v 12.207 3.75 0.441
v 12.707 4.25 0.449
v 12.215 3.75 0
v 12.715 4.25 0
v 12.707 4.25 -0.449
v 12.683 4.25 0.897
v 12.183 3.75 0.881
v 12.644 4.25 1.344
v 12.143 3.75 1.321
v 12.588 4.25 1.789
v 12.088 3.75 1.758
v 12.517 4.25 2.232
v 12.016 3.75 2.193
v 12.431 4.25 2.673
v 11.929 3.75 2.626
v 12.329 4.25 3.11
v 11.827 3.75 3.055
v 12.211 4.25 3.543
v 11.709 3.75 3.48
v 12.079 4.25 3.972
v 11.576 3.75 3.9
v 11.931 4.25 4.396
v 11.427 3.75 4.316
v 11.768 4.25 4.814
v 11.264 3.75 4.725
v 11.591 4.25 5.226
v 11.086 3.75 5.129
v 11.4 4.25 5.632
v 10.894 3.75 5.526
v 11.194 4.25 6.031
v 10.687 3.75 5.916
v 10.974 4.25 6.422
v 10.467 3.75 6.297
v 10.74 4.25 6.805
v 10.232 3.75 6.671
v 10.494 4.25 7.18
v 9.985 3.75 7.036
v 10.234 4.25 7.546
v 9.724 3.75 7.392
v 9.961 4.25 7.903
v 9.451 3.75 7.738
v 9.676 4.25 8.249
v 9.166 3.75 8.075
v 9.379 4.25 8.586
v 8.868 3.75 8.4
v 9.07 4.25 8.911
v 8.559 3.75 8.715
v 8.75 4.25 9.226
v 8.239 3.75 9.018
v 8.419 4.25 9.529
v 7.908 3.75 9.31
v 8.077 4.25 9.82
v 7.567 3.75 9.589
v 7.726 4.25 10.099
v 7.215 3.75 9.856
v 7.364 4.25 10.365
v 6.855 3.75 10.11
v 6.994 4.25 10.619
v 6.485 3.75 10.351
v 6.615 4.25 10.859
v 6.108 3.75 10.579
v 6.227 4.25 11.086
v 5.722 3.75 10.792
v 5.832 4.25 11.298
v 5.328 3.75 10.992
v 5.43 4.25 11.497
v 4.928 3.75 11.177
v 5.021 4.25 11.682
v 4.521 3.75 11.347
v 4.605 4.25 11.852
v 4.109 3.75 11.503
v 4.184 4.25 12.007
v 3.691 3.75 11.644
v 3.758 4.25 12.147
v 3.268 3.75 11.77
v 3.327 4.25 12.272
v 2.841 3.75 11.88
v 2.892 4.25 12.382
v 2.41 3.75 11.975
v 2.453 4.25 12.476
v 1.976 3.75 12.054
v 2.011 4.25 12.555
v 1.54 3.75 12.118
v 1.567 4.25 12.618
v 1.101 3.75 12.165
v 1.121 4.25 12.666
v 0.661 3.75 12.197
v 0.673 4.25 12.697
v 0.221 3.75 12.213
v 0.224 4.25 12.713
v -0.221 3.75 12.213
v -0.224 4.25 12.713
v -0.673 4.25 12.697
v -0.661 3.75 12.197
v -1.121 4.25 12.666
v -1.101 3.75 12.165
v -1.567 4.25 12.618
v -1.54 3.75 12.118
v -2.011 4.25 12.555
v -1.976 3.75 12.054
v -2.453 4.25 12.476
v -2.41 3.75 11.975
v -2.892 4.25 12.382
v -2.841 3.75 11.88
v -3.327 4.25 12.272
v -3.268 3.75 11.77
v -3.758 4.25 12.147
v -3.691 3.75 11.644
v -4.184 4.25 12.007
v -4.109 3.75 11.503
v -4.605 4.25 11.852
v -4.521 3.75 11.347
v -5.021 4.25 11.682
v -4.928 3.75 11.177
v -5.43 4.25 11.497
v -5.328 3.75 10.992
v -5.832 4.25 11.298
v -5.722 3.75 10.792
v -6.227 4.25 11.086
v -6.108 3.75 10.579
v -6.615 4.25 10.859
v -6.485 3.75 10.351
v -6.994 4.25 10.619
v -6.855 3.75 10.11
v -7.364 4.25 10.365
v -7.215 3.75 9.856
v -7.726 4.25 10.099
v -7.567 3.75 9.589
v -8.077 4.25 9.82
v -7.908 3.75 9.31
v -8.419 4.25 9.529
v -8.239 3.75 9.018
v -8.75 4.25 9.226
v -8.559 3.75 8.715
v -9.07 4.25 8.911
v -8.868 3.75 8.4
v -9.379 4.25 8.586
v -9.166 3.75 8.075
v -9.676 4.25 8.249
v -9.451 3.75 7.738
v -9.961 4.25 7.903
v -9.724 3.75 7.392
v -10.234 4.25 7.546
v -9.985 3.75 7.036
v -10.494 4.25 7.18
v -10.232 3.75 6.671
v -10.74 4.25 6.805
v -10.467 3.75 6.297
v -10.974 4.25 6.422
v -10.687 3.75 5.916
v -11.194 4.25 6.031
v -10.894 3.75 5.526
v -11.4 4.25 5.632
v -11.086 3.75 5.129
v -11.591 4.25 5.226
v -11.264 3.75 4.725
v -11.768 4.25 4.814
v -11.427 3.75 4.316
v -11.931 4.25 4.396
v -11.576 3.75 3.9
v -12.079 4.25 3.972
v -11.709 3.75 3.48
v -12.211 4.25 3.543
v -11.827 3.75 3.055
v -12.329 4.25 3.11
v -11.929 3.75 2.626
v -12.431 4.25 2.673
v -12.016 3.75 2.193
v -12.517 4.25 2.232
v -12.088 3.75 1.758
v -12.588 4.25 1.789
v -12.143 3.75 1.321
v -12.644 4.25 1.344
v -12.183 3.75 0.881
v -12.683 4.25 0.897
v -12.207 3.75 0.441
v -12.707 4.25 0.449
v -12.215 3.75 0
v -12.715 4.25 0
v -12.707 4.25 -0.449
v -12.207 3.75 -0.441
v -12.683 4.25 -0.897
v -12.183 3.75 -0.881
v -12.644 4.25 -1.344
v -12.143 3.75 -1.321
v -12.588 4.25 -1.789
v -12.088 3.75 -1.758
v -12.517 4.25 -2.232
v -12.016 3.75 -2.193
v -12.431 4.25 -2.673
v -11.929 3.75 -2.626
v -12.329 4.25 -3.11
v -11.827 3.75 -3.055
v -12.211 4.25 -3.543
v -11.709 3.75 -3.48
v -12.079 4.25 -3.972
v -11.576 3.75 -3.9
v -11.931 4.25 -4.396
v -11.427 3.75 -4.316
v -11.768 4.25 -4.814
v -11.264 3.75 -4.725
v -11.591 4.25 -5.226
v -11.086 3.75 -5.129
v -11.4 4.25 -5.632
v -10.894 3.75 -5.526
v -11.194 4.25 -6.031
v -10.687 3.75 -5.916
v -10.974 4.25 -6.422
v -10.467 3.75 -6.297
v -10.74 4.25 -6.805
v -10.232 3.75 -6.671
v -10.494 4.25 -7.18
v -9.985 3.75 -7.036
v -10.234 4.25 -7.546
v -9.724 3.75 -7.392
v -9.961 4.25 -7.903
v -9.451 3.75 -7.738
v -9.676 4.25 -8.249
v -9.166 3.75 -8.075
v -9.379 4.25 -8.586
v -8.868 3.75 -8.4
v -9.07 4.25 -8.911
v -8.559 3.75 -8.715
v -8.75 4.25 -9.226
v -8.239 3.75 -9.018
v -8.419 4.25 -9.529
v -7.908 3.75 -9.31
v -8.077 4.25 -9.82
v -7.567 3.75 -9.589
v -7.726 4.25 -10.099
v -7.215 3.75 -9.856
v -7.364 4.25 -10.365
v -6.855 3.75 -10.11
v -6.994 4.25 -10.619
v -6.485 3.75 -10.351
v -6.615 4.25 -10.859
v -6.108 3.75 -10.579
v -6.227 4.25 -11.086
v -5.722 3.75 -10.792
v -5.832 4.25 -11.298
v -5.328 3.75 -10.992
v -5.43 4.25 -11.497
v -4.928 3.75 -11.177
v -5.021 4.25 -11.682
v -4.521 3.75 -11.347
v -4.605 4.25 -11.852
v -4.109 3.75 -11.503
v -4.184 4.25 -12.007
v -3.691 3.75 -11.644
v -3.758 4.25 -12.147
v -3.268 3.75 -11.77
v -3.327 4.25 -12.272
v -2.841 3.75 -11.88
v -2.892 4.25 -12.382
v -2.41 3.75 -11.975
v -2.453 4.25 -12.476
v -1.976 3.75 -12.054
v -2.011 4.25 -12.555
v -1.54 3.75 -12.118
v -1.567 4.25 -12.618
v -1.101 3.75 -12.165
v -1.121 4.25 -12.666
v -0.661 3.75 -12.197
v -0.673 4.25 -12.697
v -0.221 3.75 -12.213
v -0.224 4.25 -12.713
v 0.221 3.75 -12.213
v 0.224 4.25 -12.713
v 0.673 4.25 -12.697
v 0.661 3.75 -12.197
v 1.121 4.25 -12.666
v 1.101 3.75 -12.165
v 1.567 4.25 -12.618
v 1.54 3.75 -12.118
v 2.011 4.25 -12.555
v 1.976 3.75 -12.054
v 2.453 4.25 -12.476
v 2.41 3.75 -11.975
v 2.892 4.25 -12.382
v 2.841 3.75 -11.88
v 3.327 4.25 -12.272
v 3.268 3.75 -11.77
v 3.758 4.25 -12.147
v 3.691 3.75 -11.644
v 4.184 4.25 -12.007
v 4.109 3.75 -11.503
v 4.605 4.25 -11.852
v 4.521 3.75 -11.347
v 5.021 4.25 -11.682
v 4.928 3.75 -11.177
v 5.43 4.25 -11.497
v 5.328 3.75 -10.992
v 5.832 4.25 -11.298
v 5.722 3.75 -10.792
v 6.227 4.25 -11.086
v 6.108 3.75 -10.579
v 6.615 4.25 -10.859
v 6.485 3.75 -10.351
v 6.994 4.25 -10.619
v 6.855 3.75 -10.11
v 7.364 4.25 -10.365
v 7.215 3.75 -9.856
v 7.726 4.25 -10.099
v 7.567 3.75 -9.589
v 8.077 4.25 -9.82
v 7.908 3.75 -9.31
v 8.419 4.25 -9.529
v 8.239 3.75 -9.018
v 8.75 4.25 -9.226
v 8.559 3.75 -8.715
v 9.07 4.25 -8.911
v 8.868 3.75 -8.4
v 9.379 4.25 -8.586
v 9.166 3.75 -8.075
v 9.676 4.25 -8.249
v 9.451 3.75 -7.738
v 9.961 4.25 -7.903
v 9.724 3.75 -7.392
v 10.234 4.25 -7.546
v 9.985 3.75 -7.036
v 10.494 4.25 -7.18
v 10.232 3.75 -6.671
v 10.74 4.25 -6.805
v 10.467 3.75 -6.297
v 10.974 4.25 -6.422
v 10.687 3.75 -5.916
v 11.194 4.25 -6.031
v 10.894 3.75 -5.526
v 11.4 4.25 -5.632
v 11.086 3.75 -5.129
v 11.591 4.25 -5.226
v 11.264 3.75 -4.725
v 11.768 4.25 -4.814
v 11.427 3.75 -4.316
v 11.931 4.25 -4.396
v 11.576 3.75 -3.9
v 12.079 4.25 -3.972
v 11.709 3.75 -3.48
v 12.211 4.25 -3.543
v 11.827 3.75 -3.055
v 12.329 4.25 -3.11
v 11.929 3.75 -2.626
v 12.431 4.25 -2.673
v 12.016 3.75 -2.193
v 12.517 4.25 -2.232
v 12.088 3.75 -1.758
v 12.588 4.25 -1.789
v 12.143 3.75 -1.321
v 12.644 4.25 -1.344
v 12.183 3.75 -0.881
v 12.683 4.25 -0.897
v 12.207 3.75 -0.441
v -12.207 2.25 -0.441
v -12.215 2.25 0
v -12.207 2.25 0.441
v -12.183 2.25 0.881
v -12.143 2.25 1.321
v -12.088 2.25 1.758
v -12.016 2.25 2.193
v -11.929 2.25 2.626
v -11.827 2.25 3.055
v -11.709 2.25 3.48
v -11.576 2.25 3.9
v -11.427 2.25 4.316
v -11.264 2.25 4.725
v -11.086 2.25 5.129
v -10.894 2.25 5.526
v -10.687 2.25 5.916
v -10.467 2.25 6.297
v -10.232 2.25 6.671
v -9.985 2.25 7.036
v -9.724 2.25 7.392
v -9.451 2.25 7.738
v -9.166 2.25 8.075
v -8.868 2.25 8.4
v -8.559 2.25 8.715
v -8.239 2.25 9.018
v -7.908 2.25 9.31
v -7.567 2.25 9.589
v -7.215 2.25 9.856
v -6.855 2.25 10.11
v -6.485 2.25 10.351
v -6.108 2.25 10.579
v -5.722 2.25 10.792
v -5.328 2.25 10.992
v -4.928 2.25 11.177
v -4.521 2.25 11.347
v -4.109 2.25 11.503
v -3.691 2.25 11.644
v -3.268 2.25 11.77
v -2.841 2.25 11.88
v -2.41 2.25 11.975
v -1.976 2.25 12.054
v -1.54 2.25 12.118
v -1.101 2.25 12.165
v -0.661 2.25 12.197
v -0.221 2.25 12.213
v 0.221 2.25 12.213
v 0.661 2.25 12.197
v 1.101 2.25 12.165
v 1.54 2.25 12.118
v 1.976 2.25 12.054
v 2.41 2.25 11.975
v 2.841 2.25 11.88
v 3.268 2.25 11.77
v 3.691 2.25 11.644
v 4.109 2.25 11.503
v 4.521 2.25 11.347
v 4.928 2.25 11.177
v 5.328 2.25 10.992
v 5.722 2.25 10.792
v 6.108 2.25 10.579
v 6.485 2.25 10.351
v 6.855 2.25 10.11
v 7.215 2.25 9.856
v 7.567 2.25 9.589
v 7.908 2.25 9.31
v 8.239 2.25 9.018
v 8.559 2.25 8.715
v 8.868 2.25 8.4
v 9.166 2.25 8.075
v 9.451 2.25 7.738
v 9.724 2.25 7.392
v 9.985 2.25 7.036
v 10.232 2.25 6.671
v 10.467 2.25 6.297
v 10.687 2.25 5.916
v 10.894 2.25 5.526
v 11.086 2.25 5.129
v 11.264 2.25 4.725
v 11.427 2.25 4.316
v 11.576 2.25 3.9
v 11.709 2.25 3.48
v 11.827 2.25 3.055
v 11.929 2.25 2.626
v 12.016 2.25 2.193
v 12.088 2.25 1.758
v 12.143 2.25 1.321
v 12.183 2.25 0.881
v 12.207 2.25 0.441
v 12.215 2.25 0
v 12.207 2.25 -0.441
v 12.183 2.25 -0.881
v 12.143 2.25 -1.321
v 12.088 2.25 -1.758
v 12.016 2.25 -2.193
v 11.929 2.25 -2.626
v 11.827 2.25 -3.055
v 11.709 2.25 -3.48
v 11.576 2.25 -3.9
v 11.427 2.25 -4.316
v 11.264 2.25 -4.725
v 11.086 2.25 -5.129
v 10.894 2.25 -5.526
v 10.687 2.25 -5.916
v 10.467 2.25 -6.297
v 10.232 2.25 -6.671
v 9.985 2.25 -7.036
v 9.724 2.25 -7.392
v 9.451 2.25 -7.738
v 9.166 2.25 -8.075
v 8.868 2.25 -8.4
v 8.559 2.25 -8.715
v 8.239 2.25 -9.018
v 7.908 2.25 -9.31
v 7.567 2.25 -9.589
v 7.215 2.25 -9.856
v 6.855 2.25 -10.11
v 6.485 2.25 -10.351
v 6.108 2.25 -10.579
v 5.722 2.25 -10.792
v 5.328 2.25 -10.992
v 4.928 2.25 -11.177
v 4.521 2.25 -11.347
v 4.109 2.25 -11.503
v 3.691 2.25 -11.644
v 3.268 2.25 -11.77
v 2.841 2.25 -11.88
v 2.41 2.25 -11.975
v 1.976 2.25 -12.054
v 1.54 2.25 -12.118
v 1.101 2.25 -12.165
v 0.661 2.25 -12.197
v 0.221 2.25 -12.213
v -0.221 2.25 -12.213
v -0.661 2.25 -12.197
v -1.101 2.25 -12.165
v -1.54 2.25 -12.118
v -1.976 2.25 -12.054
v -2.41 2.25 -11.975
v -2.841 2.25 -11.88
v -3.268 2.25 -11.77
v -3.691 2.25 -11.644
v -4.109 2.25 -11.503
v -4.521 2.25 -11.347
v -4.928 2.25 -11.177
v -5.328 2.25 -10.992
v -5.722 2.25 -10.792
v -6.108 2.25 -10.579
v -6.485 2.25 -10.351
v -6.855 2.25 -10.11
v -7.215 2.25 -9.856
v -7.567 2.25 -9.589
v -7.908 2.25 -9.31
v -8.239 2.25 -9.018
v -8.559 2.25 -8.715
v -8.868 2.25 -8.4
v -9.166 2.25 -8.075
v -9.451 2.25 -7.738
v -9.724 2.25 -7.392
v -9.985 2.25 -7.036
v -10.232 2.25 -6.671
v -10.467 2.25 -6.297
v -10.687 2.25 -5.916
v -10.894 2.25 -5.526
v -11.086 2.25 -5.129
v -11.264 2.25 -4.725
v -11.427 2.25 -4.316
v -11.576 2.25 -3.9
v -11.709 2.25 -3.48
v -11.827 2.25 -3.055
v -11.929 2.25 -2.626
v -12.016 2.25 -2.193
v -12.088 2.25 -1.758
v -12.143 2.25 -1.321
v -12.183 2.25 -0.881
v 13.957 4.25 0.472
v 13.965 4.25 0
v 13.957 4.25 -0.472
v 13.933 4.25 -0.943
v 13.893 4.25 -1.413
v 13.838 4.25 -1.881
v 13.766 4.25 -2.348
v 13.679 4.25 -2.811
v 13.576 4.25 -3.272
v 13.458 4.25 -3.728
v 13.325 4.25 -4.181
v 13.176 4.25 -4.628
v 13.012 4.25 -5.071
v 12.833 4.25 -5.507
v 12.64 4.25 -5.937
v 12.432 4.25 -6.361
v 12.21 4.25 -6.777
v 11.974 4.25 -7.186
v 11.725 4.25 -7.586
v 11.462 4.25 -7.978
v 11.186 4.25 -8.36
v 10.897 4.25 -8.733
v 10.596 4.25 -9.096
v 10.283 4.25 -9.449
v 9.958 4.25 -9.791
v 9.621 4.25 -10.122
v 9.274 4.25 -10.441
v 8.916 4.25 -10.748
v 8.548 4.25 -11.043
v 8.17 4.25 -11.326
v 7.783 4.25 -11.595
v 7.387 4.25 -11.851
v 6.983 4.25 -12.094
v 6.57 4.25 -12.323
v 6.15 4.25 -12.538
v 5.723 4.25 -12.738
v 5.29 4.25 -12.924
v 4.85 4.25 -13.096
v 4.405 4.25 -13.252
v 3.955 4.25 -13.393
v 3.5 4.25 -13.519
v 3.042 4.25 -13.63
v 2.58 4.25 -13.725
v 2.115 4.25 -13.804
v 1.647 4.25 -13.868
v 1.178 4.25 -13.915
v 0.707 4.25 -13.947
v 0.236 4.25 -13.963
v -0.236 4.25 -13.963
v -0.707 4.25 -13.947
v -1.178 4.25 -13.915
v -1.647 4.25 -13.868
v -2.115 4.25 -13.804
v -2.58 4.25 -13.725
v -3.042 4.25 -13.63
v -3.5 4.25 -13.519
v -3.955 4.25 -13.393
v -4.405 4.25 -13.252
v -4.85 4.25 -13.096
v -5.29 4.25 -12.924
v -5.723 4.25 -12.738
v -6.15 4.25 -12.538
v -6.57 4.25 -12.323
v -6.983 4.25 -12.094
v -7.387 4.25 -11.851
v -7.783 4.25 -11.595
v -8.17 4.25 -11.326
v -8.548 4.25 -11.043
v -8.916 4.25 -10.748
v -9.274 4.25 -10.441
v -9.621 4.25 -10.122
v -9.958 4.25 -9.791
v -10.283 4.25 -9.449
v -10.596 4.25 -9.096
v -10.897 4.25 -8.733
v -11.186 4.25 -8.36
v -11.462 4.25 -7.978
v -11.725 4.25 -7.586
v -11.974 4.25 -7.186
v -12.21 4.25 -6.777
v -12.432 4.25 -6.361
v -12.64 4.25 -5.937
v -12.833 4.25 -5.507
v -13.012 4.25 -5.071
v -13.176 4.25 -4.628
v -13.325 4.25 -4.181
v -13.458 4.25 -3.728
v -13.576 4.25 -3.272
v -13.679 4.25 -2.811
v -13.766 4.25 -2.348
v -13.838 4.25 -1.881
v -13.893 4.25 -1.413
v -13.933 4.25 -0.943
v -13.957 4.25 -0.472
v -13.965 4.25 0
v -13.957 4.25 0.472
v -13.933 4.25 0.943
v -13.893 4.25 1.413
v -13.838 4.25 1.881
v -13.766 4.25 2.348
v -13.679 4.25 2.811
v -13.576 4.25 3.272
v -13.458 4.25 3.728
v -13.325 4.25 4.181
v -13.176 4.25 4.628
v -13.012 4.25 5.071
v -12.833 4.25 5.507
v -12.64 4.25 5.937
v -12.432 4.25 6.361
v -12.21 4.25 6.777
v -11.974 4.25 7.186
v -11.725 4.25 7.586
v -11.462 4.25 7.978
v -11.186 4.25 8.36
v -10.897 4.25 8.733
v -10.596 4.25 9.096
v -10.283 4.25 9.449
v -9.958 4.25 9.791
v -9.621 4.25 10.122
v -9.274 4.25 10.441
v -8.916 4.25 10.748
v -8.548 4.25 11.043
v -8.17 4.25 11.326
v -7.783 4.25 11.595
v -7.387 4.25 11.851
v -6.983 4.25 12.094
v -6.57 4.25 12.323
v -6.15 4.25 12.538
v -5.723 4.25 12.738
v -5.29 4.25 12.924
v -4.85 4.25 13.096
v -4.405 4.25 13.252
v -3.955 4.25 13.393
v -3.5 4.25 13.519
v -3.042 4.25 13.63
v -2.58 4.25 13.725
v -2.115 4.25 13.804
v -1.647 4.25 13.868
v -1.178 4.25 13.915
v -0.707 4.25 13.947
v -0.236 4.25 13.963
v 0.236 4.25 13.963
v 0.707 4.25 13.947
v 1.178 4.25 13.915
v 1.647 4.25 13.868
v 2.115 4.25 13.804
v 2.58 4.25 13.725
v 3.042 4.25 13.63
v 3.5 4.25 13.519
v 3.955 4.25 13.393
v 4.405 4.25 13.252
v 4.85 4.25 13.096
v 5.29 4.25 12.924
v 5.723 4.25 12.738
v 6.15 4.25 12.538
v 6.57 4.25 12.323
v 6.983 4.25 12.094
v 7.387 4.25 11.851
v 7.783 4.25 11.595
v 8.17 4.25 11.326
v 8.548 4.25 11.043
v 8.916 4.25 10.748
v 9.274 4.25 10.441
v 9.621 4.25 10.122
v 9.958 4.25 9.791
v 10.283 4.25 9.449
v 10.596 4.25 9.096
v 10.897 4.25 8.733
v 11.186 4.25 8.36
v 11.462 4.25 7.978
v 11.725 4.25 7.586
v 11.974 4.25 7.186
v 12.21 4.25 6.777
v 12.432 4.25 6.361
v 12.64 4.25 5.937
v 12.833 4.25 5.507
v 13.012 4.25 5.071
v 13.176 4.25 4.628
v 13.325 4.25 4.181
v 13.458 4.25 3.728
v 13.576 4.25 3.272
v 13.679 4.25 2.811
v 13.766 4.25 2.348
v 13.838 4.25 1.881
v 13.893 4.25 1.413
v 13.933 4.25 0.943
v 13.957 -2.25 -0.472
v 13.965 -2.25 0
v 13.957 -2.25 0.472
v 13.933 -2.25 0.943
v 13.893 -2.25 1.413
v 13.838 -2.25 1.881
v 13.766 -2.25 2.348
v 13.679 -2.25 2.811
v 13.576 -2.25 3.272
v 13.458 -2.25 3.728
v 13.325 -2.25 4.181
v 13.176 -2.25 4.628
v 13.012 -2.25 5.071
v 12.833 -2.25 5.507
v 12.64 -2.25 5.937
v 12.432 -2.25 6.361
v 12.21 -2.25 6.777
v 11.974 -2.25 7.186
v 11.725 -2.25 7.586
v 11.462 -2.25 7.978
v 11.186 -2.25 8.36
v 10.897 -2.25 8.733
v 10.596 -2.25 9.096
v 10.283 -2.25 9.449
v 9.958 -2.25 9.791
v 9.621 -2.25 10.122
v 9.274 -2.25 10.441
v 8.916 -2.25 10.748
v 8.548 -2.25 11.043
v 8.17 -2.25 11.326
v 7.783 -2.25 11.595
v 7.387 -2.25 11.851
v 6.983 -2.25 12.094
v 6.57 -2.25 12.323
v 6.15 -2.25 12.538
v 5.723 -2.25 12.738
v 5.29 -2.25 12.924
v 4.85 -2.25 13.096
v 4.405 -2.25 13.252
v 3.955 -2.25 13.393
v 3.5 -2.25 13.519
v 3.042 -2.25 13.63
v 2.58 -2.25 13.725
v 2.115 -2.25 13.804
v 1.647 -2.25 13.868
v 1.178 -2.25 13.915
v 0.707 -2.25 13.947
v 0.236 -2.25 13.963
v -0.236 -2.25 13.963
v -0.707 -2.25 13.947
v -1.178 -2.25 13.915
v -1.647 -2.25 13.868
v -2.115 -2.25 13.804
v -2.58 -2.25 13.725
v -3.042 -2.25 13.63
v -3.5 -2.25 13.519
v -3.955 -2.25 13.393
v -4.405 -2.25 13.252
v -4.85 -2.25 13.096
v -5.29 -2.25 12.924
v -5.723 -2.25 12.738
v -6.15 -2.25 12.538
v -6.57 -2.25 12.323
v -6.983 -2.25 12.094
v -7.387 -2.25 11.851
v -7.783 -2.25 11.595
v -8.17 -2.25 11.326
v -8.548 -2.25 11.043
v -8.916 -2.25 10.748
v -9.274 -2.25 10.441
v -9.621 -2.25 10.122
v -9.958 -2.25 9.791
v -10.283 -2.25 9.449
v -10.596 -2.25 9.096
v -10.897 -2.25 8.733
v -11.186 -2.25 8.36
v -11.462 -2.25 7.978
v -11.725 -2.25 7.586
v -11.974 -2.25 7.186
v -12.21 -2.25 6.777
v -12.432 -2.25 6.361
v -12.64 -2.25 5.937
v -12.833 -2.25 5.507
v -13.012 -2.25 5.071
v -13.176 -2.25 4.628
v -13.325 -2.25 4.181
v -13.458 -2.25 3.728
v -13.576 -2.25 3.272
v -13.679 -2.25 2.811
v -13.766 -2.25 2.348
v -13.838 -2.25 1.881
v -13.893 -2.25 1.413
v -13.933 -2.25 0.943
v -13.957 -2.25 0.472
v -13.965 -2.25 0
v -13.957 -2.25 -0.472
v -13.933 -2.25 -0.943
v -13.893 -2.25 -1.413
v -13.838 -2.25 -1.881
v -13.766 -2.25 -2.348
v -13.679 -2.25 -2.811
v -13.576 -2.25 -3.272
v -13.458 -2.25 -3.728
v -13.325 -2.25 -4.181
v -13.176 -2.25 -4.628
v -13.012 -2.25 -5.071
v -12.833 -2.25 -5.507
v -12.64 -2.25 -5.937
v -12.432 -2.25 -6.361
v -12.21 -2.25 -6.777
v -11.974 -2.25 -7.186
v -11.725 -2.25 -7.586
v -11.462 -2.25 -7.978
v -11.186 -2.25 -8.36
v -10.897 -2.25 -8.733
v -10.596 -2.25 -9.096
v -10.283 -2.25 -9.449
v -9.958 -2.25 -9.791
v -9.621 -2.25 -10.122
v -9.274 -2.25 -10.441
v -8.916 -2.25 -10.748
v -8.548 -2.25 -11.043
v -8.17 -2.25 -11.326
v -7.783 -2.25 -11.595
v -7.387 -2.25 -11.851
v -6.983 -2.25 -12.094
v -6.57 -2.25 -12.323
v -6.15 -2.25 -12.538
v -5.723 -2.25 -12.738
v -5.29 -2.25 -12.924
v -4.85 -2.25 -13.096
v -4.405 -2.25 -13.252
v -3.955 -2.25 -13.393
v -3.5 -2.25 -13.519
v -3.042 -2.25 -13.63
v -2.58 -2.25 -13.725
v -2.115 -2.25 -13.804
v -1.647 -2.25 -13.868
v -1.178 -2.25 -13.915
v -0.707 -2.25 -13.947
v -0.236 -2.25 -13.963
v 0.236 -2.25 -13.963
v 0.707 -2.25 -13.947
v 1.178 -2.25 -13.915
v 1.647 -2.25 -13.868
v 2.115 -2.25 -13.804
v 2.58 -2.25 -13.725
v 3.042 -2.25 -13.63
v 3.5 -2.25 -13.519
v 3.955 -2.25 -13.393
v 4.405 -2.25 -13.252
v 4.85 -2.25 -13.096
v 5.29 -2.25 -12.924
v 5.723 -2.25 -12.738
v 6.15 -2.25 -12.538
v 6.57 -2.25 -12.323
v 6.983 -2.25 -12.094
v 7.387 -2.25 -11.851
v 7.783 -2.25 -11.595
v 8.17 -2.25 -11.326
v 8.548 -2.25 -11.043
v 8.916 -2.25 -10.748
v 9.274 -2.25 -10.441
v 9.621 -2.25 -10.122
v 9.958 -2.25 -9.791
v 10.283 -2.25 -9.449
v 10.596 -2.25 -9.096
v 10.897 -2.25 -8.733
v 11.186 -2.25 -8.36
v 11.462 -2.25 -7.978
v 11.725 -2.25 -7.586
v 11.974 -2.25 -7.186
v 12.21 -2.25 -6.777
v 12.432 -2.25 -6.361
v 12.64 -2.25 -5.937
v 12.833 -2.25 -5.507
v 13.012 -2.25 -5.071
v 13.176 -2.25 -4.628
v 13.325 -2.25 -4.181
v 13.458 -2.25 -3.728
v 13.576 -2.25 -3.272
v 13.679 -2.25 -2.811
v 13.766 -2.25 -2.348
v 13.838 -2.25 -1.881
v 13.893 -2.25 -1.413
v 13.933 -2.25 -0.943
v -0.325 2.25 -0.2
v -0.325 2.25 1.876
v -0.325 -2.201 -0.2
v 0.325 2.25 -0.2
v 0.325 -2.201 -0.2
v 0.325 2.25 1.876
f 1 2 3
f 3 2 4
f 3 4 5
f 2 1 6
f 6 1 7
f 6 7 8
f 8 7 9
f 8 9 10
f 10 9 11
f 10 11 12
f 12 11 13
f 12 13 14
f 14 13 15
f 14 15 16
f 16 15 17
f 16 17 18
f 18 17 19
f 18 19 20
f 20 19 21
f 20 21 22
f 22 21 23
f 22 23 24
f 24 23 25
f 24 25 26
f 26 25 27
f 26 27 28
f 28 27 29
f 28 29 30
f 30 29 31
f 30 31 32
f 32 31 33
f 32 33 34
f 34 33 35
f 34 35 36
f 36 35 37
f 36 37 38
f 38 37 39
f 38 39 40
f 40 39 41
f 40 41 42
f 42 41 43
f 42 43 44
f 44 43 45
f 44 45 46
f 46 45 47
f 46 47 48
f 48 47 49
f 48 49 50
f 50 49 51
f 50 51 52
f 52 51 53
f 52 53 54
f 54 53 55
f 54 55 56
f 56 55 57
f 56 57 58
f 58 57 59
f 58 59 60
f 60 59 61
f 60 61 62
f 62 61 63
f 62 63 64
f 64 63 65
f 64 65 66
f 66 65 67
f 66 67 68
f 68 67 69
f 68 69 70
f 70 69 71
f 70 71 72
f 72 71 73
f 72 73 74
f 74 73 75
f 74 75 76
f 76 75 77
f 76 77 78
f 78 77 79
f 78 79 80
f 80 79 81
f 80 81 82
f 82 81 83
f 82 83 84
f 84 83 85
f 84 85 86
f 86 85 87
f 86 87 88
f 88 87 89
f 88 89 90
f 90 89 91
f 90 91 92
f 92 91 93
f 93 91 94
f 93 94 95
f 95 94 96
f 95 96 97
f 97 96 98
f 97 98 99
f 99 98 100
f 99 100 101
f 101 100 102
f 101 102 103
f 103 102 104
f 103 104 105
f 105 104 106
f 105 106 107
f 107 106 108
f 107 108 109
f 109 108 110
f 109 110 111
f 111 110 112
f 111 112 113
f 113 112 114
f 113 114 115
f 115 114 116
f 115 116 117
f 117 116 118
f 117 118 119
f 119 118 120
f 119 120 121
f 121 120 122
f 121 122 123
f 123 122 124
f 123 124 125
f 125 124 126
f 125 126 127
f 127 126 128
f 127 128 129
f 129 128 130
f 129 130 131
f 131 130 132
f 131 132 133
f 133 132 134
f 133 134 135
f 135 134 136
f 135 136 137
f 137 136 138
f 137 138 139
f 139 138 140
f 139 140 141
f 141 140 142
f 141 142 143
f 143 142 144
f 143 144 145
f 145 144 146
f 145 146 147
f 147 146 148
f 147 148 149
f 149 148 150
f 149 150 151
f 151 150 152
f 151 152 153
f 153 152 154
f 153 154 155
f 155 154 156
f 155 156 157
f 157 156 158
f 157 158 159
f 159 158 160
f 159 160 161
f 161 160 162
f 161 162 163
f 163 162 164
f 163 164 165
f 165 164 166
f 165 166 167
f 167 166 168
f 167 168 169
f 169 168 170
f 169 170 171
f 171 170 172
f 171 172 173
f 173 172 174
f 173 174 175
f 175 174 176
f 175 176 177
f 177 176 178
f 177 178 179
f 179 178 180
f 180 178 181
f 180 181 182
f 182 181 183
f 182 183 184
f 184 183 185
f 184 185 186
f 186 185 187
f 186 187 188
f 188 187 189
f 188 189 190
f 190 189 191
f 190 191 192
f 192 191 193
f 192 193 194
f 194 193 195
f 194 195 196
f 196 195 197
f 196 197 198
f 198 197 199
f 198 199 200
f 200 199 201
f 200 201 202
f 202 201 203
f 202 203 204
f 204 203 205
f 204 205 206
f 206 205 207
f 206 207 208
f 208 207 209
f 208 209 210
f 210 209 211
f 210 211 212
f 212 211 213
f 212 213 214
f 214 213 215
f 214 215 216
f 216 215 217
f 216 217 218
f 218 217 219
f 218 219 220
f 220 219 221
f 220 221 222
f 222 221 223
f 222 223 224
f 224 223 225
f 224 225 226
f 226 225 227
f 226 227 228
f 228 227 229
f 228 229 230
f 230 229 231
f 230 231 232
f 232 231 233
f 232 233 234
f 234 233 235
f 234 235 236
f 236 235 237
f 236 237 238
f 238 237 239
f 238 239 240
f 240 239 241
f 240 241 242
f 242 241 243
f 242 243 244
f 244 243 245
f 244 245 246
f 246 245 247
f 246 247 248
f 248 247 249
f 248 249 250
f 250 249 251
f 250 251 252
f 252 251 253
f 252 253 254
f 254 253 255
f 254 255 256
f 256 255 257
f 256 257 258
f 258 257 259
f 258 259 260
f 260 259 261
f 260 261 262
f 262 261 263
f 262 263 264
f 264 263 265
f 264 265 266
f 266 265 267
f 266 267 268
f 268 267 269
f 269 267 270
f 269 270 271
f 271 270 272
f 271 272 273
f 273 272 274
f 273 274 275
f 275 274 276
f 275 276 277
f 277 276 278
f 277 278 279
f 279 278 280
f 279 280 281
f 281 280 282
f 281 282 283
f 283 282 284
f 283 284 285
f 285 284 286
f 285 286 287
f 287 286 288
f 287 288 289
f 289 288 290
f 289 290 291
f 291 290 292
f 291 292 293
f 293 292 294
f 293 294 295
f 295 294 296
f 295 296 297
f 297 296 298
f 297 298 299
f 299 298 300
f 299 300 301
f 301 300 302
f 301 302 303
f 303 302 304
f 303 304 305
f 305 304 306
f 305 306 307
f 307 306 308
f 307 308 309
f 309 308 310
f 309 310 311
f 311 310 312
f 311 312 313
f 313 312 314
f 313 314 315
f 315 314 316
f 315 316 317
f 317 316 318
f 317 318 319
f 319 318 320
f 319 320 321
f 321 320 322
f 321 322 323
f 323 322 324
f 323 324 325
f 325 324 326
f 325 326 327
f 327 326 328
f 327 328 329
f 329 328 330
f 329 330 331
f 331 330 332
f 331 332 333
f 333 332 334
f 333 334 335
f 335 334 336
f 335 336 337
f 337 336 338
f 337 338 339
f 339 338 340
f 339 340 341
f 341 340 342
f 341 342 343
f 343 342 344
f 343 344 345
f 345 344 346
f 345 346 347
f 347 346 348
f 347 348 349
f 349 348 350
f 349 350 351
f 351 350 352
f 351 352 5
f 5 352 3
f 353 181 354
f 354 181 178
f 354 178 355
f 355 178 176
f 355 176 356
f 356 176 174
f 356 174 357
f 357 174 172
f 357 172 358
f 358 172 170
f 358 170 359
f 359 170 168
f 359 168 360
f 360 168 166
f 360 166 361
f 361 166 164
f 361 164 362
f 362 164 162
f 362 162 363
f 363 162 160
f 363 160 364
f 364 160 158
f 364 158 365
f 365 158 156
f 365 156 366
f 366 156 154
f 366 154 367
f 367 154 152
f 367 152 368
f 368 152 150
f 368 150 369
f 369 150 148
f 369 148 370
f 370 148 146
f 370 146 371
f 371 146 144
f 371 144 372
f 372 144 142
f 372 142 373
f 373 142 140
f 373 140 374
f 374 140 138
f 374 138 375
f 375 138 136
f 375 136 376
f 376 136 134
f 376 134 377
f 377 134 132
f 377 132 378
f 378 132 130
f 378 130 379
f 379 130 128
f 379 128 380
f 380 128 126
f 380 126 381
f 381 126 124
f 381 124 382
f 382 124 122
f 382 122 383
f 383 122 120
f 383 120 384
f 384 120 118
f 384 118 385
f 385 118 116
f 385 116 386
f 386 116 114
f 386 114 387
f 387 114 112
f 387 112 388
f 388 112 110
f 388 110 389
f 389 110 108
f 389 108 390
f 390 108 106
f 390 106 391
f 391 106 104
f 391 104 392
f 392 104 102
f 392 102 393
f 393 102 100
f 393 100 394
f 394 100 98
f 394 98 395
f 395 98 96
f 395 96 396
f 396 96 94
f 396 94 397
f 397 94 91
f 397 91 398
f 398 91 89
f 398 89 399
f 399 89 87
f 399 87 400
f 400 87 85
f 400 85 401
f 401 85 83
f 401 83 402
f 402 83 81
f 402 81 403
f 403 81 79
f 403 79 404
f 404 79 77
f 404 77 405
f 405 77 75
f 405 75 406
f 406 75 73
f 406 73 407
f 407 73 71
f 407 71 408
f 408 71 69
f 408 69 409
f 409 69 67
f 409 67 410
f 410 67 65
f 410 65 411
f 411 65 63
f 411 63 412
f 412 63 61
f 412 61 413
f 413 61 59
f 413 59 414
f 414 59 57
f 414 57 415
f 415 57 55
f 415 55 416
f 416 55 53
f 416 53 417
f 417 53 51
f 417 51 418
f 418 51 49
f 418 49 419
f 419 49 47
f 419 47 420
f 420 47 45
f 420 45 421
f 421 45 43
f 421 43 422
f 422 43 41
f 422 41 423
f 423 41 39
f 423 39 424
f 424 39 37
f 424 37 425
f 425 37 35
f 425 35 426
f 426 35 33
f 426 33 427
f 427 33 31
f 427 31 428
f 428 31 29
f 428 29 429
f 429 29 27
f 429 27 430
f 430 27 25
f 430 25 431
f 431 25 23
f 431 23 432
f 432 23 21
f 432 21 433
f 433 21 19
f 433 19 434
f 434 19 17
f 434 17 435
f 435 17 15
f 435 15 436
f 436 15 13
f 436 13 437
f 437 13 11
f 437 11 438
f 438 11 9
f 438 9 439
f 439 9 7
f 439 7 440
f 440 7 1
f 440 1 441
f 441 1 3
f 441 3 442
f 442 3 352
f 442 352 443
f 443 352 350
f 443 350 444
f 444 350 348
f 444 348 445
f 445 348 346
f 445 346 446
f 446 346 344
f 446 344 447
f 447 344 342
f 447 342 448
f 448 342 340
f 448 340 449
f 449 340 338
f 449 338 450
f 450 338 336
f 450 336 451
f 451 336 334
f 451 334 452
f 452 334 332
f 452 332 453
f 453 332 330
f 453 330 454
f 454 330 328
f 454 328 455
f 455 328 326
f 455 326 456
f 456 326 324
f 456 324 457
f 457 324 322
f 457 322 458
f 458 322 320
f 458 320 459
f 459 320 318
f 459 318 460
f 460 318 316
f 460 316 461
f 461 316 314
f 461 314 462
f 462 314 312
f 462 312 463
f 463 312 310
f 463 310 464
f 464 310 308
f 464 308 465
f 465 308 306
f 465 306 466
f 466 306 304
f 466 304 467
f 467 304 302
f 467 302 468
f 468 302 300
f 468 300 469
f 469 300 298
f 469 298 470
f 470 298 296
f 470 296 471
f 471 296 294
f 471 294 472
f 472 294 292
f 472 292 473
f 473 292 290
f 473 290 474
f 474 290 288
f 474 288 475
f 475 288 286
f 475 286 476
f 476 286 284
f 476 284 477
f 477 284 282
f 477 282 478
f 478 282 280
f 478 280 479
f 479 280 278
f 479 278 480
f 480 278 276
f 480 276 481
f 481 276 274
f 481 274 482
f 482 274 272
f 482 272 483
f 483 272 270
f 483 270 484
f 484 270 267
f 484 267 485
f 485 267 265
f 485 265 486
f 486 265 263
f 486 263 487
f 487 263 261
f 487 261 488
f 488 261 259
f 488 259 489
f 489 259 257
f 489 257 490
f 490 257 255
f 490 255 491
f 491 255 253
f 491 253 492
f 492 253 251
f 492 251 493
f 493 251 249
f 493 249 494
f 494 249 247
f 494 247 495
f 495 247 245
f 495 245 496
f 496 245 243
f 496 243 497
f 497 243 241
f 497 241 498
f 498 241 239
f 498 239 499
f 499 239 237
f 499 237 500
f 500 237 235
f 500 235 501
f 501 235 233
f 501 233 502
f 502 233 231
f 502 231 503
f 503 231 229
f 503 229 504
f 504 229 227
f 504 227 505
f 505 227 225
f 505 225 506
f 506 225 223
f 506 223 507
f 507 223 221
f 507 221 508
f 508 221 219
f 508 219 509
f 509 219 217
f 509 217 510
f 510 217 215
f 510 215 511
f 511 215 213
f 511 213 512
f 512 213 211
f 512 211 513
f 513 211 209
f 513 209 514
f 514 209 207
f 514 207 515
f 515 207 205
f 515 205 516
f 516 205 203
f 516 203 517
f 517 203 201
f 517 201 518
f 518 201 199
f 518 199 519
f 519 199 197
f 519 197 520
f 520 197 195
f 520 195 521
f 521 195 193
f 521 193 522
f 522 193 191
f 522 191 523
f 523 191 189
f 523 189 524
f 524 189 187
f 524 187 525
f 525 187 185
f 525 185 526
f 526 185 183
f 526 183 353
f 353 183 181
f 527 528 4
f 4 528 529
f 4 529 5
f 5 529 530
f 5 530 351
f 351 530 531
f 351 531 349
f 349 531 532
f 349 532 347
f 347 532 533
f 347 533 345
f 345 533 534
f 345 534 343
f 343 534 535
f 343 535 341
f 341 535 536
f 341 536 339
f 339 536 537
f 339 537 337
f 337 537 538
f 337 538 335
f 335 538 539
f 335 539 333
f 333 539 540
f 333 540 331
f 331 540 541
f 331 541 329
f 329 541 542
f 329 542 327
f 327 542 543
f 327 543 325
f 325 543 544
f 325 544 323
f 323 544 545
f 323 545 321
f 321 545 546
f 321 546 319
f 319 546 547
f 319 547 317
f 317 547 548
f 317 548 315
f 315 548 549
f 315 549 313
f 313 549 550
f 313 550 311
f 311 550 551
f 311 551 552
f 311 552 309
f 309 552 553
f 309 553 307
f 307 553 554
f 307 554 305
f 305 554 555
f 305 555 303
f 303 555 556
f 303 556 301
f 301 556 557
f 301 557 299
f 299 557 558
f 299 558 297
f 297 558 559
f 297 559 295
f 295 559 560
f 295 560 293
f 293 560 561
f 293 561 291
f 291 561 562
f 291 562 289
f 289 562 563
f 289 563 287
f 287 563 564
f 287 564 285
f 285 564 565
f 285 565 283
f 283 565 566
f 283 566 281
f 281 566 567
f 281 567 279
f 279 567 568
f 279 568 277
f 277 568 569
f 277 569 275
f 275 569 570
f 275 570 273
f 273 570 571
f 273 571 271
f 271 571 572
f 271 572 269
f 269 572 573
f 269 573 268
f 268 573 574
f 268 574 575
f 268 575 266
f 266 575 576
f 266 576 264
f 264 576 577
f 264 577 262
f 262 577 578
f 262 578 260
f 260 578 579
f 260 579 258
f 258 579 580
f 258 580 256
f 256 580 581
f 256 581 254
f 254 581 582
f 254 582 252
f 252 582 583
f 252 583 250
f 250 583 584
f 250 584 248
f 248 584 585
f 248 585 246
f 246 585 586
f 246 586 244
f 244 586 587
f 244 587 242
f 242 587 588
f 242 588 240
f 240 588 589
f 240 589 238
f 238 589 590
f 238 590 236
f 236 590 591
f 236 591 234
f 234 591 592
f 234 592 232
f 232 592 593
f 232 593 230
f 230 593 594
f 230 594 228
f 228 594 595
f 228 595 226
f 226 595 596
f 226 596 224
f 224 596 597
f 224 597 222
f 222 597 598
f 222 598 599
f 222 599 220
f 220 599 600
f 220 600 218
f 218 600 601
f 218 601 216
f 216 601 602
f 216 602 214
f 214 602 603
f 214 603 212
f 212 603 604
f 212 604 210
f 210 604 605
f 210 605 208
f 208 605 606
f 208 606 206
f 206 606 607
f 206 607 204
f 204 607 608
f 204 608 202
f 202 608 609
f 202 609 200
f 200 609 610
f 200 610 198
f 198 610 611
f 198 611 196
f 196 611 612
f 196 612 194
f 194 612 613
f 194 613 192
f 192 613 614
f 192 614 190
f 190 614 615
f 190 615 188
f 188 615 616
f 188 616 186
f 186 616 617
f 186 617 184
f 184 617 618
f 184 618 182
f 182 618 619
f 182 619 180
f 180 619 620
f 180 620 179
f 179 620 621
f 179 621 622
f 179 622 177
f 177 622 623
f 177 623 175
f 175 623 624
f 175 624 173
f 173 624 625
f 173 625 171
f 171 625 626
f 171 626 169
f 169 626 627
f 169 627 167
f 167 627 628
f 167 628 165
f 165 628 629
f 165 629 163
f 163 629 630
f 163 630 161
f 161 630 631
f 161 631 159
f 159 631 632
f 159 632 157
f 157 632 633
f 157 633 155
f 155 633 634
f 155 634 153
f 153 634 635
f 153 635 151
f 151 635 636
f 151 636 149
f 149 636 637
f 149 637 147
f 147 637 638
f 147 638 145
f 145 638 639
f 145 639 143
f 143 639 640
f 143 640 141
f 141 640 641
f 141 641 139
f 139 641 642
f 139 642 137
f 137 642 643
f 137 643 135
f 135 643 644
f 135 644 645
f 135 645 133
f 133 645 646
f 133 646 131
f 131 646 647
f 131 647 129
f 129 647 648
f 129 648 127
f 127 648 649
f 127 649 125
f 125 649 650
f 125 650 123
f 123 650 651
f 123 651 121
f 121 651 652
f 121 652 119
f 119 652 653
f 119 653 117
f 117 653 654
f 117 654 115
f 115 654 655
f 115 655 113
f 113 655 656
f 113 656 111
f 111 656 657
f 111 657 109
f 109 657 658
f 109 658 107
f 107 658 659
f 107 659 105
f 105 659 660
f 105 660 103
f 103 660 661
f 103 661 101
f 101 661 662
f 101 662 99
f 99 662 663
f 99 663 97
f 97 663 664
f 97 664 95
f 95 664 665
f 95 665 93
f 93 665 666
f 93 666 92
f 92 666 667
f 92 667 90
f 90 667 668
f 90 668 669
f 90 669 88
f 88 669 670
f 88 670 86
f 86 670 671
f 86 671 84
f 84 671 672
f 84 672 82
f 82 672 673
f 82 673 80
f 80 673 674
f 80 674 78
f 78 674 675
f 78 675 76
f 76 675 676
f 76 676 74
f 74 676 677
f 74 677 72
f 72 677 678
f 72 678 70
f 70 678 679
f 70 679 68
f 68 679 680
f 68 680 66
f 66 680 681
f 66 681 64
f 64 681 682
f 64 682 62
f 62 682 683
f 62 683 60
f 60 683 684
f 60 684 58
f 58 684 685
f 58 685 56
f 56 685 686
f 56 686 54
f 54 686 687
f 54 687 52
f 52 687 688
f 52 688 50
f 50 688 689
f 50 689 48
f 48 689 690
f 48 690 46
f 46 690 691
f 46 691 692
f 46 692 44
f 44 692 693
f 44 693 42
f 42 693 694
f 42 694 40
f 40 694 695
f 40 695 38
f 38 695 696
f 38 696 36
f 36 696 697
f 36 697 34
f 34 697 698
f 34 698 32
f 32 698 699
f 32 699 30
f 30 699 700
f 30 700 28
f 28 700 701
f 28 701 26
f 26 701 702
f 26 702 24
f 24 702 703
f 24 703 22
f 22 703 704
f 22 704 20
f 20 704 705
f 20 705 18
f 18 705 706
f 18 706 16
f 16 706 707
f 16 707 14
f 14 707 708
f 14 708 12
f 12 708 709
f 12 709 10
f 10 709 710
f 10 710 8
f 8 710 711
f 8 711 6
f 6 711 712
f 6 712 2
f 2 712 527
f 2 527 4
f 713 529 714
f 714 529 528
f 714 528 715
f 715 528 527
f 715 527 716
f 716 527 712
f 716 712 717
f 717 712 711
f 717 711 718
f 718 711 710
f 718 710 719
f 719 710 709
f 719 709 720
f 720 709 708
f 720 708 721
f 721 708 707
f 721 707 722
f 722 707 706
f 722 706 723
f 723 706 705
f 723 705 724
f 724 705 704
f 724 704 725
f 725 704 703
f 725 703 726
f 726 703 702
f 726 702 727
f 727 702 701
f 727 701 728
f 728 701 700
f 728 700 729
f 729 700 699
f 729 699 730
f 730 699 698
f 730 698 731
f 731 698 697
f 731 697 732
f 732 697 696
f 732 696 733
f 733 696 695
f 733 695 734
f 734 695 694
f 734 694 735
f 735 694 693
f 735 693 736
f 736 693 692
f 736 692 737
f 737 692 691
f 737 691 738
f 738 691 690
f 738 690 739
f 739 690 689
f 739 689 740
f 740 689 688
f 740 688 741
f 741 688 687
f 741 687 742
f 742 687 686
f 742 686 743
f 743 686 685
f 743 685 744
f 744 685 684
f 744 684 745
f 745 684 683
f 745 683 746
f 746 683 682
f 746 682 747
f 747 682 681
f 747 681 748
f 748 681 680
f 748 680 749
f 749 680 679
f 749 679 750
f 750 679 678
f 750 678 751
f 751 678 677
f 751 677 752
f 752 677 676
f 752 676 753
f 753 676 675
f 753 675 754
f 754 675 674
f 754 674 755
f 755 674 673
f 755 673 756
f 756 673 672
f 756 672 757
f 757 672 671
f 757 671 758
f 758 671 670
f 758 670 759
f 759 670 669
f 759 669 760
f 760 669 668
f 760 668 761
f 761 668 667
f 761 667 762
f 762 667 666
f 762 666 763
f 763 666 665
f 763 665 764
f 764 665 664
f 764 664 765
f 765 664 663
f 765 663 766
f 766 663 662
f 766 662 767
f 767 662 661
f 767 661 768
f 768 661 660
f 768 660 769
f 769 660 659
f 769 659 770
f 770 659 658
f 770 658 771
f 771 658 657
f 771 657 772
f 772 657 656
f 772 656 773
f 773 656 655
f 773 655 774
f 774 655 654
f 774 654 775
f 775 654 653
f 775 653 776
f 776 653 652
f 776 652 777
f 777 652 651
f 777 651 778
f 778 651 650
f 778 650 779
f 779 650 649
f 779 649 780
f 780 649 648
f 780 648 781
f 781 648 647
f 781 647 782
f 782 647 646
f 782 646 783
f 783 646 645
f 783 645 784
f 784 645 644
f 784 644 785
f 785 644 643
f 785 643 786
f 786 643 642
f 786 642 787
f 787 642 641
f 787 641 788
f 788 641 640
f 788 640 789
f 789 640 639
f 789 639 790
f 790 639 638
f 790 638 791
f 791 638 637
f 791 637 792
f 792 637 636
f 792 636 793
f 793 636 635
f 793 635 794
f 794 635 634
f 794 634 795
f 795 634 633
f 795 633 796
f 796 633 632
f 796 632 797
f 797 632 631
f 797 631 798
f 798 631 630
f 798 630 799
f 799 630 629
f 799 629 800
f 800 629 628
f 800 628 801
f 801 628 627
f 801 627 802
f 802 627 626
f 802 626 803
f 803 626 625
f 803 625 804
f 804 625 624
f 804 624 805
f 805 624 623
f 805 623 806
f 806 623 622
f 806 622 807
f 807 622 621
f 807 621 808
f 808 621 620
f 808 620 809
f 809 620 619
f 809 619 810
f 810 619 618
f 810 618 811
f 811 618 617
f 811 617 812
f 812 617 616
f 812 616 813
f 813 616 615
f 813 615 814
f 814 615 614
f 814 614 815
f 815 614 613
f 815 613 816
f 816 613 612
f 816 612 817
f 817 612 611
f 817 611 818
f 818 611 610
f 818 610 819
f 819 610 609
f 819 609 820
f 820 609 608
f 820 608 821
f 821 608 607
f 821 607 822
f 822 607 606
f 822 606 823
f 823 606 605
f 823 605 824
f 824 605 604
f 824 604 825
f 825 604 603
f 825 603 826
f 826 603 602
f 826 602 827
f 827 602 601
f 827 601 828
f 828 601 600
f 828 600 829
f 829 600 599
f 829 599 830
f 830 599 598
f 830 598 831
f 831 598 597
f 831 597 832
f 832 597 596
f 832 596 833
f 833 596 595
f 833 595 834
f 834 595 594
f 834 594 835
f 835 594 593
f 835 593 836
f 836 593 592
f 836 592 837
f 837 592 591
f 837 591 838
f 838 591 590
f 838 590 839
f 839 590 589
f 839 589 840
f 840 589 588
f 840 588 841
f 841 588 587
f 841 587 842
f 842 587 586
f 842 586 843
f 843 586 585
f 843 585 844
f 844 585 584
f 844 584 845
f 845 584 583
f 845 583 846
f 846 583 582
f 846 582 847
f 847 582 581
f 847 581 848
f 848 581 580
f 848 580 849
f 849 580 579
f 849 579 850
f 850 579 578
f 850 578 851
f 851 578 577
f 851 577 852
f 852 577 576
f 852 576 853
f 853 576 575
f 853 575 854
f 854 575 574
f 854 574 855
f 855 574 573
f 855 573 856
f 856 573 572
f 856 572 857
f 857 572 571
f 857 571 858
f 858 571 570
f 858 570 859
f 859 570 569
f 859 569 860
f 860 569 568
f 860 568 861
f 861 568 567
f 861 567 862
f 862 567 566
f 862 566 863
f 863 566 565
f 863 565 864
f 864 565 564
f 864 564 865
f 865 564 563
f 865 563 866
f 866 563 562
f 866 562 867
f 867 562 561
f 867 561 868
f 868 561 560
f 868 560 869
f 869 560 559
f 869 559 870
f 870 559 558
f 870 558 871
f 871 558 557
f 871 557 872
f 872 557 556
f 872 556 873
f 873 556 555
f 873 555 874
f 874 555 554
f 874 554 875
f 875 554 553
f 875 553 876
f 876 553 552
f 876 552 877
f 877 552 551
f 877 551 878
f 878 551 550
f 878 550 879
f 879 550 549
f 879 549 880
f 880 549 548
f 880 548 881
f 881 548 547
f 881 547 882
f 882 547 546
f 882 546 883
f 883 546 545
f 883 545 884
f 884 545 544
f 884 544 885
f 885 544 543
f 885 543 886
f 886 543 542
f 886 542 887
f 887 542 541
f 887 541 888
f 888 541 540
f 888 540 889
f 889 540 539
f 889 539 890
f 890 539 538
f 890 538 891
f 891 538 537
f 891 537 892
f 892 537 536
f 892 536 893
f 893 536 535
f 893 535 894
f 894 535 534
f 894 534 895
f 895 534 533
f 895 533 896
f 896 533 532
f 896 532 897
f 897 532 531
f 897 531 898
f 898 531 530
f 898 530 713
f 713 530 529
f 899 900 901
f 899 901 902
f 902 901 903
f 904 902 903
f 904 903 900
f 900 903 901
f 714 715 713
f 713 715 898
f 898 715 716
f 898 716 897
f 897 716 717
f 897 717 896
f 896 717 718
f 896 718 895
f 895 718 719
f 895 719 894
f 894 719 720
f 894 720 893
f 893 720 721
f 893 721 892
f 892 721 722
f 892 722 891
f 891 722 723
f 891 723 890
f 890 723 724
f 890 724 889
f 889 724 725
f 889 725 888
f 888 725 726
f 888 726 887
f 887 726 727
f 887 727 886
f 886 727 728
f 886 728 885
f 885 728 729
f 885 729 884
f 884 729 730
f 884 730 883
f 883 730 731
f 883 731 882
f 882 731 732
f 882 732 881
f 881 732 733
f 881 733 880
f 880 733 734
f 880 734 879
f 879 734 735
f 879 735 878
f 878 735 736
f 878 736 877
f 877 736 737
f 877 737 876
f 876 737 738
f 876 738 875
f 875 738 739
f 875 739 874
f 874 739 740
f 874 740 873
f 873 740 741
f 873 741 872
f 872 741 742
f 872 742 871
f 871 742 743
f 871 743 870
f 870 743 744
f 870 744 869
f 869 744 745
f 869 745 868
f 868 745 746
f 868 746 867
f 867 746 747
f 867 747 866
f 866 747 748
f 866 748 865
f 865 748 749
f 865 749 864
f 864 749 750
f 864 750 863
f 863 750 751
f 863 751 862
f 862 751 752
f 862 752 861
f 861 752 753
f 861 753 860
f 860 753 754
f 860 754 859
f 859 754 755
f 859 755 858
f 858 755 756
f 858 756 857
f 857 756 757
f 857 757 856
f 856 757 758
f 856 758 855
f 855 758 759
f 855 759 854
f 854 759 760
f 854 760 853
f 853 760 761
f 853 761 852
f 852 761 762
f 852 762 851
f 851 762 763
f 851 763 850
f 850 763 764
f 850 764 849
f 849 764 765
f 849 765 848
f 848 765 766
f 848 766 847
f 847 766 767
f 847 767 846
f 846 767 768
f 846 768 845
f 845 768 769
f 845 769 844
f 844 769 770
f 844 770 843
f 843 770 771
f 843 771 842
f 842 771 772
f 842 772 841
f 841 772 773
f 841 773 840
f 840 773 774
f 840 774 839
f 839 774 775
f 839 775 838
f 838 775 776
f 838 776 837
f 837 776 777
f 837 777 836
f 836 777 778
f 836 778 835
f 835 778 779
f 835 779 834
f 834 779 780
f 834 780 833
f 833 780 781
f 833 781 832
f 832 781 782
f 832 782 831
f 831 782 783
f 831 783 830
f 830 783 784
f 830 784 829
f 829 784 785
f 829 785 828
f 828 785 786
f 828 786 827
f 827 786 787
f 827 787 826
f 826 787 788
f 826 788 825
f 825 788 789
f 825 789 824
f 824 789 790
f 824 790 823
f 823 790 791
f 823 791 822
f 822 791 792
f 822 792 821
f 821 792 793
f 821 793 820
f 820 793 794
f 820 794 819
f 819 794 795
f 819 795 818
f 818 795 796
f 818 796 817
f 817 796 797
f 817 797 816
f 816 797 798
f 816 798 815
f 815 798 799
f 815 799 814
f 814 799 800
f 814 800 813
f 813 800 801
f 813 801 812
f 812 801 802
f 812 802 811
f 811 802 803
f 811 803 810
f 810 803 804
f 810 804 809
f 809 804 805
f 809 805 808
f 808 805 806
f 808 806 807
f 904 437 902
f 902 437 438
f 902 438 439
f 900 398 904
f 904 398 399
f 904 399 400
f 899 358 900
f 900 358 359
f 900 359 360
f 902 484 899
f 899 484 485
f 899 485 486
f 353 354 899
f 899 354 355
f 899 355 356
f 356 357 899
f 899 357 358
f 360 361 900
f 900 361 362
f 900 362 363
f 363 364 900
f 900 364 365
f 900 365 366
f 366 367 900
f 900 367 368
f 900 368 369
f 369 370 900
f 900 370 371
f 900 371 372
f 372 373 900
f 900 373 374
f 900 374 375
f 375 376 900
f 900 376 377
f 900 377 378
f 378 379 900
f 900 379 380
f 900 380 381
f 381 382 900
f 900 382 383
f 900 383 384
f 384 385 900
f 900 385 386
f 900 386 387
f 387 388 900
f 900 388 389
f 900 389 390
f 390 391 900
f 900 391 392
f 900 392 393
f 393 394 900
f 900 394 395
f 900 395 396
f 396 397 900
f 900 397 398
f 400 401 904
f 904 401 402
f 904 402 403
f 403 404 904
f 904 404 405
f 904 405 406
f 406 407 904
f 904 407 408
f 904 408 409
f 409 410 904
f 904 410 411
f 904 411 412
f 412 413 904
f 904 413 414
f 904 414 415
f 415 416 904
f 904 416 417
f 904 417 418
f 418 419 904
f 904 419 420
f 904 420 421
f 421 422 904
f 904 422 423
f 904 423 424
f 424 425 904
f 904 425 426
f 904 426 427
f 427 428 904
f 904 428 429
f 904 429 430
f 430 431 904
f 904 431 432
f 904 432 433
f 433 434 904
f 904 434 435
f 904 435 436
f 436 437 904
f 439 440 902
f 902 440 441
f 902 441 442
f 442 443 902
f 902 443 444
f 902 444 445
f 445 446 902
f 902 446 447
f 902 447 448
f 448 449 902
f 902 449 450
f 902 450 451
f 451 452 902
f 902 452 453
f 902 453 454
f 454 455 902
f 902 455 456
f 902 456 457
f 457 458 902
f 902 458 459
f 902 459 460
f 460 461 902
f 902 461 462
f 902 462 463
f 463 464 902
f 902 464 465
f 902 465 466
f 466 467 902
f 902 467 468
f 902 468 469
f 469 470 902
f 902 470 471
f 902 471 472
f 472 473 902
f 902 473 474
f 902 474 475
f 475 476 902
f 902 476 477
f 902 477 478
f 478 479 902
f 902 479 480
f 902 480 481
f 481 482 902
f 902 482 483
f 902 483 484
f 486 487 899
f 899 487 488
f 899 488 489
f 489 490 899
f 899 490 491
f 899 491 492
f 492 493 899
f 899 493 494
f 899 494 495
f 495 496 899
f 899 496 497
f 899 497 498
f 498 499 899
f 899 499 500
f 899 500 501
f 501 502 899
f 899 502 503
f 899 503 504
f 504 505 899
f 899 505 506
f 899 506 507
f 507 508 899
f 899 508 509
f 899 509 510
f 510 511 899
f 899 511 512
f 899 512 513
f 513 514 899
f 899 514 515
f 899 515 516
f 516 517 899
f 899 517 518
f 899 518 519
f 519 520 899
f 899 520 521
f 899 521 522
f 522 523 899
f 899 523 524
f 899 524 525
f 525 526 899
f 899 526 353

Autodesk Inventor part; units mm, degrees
ref_plane "YZ Plane" through (0, 0, 0) normal (1, 0, 0) x (0, 1, 0)
ref_plane "XZ Plane" through (0, 0, 0) normal (0, 1, 0) x (-1, 0, 0)
ref_plane "XY Plane" through (0, 0, 0) normal (0, 0, 1) x (1, 0, 0)
sketch "Sketch1" plane through (0, 0, 0) normal (0, 1, 0) x (-1, 0, 0)
  circle A0 centre (0, 0) radius 12.065 construction
  circle A1 centre (0, 0) radius 12.215
  dimension "d0" = 24.13
  dimension "d1" = 0.15
extrude "Extrusion1" add sketch "Sketch1" along normal mid plane 4.5
sketch "Sketch2" plane through (0, 0, 0) normal (1, 0, 0) x (0, 1, 0)
  line L0 (2.25, 1.7652) -> (-1.75, -0.1)
  line L1 (-1.75, -0.1) -> (2.25, -0.1)
  line L2 (2.25, -0.1) -> (2.25, 1.7652)
  line L3 (2.25, -12.215) -> (2.25, 12.215) projected
  line L4 (2.35, -0.2) -> (-2.2011, -0.2)
  line L5 (-2.2011, -0.2) -> (2.35, 1.9222)
  line L6 (2.35, 1.9222) -> (2.35, -0.2)
  point P0 (0, 0)
  dimension "d7" = 25
  dimension "d8" = 0.1
  dimension "d9" = 4
  dimension "d17" = 0.1
extrude "Extrusion2" cut sketch "Sketch2" against normal mid plane 0.65
sketch "Sketch3" plane through (0, 2.25, 0) normal (0, 1, 0) x (1, 0, 0)
  circle A0 centre (0, 0) radius 12.215 projected
  circle A1 centre (0, 0) radius 13.965
  dimension "d12" = 1.75
extrude "Extrusion3" add sketch "Sketch3" along normal blind 2 and the other way blind 4.5
chamfer "Chamfer1" distance 0.5 angle 45 1 edges at (-12.215, 4.25, 0)
properties part number "Knife_Centering_Jig_LM6013" material "ABS Plastic"
